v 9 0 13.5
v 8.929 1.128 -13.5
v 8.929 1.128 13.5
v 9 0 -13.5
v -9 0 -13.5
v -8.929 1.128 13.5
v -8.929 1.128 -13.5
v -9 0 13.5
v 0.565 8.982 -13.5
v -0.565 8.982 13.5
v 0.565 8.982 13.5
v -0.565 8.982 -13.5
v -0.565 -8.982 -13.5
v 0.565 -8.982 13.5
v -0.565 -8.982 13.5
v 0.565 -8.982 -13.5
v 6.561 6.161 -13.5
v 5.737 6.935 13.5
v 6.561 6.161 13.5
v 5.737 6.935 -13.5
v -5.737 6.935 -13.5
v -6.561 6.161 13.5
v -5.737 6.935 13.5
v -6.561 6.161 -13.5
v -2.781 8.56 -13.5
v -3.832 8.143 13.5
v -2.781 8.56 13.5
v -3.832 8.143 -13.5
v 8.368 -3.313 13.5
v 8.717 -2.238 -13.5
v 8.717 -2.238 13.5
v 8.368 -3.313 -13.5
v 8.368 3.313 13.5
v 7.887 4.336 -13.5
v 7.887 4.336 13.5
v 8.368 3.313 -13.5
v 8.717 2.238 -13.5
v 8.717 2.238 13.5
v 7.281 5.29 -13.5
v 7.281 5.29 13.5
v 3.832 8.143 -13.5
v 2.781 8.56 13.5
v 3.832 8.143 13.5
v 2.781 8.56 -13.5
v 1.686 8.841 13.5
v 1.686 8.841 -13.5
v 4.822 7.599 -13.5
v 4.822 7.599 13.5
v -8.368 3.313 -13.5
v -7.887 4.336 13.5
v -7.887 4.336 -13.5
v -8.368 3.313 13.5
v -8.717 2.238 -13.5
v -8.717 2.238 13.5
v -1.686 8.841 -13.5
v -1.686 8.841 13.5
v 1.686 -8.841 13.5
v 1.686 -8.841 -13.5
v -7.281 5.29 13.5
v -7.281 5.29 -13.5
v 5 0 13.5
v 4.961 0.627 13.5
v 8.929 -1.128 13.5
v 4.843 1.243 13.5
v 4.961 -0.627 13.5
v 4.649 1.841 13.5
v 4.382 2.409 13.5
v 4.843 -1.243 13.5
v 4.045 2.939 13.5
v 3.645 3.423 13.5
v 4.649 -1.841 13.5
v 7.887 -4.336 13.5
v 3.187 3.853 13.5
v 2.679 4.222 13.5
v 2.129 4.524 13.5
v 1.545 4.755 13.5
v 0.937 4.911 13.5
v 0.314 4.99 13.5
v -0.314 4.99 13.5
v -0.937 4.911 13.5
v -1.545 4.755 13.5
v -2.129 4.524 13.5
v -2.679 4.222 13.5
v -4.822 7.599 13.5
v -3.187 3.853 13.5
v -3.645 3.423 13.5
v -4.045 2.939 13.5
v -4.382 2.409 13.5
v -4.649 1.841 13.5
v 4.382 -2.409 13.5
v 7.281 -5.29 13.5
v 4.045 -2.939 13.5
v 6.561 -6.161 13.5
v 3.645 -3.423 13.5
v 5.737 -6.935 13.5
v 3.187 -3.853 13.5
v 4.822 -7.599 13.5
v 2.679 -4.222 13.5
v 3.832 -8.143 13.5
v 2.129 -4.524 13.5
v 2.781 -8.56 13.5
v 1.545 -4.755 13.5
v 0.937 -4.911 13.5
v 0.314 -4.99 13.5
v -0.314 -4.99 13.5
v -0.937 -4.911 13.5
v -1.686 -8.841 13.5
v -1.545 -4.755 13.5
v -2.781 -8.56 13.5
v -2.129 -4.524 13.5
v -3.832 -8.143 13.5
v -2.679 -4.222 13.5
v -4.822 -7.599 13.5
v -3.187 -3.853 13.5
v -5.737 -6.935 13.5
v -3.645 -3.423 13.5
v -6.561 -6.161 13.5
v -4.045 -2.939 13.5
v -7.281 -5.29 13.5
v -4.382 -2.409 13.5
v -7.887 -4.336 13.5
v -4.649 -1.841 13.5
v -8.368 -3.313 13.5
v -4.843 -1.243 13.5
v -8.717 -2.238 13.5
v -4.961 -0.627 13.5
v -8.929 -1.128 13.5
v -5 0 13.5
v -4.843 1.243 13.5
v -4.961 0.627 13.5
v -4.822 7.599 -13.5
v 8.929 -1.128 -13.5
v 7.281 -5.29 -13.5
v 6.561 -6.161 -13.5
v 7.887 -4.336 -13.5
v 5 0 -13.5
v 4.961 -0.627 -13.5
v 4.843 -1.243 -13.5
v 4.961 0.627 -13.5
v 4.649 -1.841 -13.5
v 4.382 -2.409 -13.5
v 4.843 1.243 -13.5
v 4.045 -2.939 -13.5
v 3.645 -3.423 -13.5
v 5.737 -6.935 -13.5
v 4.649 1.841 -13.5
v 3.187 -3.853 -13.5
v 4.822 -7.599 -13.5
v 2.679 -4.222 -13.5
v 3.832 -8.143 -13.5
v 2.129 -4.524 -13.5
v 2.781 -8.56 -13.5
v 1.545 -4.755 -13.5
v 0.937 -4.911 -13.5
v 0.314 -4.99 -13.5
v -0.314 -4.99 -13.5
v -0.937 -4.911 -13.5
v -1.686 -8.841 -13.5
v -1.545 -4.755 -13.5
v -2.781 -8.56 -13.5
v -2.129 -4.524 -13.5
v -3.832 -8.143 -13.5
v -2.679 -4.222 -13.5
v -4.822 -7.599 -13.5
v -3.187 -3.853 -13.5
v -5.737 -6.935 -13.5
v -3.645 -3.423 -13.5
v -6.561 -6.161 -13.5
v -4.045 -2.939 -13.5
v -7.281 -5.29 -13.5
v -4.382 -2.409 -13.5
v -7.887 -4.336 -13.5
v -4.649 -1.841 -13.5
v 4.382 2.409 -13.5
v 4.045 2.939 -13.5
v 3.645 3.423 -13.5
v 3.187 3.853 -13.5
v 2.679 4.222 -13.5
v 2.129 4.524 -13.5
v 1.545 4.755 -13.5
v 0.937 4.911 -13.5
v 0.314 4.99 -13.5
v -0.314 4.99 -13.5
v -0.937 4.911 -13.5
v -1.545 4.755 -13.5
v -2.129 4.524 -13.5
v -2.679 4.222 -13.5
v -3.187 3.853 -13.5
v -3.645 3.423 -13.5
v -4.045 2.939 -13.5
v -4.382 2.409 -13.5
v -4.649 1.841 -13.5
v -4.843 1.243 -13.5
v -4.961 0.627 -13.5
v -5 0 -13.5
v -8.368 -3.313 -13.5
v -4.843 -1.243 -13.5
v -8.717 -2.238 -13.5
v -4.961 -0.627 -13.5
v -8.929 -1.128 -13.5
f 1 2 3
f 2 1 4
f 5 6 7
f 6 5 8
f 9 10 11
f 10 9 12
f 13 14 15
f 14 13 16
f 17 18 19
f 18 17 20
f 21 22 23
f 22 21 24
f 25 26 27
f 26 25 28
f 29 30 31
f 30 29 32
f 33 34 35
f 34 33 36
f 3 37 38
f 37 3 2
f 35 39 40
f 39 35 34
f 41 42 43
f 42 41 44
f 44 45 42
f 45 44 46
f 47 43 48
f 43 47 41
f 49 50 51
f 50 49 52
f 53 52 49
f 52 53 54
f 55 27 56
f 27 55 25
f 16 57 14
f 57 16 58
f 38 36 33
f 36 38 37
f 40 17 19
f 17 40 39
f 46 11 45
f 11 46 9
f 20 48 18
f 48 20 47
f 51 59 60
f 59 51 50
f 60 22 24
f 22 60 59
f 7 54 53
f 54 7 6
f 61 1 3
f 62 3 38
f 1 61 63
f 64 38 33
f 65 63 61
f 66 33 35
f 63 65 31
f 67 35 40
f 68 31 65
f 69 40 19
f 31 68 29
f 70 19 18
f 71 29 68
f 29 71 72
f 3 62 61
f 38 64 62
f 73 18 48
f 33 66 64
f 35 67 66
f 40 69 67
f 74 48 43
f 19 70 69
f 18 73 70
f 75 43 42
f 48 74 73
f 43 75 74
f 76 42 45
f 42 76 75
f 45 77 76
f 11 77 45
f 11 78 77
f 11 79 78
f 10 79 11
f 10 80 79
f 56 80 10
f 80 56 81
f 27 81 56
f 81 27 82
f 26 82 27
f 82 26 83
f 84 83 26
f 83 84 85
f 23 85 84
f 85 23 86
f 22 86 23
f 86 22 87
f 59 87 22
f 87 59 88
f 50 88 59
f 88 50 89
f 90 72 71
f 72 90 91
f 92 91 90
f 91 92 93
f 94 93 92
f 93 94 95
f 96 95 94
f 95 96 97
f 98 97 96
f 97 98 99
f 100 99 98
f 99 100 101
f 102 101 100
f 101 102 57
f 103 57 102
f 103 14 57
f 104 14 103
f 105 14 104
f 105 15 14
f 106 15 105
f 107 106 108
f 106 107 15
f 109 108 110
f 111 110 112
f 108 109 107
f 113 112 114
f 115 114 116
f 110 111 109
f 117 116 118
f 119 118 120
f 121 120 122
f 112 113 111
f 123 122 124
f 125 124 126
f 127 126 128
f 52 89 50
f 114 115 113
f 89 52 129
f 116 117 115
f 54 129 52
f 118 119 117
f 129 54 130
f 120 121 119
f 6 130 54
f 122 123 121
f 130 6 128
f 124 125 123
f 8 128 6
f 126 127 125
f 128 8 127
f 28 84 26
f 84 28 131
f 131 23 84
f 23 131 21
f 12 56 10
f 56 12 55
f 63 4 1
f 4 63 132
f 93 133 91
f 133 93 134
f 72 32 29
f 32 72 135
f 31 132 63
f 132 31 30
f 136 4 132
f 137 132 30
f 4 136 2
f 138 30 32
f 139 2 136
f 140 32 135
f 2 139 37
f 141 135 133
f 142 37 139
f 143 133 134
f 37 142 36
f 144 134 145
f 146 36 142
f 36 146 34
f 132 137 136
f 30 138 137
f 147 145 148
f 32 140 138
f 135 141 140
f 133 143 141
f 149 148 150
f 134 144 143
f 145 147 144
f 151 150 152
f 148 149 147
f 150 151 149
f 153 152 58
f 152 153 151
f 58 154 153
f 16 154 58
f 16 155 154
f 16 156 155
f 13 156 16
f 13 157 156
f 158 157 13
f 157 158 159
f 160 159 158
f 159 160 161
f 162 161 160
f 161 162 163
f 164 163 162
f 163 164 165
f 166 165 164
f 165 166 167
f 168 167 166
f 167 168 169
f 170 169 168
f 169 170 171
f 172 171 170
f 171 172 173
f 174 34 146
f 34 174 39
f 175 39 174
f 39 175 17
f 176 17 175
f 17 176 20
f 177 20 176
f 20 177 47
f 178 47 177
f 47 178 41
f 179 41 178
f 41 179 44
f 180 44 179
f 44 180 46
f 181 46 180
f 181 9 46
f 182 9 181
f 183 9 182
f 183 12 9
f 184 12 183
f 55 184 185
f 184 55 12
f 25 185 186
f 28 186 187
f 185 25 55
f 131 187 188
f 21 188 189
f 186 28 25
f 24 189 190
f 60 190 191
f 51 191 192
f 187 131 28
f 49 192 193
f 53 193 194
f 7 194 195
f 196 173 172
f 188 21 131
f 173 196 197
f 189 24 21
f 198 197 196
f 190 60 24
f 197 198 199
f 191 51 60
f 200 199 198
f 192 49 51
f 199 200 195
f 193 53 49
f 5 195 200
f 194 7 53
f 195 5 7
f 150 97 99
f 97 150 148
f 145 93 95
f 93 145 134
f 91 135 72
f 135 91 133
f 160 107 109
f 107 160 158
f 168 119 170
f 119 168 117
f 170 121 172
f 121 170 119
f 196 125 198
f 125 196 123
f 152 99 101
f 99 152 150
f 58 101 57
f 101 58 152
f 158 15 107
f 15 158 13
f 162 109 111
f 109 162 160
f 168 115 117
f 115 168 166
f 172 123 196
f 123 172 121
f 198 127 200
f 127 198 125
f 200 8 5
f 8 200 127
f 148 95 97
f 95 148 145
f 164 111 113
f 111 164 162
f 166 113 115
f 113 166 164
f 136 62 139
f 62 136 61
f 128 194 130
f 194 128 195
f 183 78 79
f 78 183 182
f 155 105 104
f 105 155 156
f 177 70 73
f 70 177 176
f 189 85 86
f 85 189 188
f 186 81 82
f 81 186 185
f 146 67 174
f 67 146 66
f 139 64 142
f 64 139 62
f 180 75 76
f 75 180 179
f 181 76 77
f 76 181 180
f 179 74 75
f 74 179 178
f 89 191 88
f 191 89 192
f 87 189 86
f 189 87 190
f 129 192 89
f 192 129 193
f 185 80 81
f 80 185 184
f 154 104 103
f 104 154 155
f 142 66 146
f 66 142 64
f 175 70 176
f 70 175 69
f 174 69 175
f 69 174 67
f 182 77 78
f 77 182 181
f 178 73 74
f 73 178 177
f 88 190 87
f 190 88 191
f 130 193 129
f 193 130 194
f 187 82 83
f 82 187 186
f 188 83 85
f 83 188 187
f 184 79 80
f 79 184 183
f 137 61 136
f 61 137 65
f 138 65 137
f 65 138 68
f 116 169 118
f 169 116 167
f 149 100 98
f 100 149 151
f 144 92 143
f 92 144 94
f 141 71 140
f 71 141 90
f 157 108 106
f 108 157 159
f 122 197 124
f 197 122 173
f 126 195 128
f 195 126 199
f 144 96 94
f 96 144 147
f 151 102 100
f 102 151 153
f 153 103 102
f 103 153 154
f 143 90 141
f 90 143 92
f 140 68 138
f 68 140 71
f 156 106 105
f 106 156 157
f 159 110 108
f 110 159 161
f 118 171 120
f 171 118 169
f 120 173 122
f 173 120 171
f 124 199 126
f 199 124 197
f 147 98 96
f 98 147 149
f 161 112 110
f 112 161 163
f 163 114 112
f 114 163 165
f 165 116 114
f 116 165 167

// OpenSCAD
$fn = 50;


difference() {
	union() {
		translate(v = [0, 0, -13.5000000000]) {
			cylinder(h = 27, r = 9.0000000000);
		}
	}
	union() {
		translate(v = [0, 0, -100.0000000000]) {
			cylinder(h = 200, r = 5.0000000000);
		}
	}
}
